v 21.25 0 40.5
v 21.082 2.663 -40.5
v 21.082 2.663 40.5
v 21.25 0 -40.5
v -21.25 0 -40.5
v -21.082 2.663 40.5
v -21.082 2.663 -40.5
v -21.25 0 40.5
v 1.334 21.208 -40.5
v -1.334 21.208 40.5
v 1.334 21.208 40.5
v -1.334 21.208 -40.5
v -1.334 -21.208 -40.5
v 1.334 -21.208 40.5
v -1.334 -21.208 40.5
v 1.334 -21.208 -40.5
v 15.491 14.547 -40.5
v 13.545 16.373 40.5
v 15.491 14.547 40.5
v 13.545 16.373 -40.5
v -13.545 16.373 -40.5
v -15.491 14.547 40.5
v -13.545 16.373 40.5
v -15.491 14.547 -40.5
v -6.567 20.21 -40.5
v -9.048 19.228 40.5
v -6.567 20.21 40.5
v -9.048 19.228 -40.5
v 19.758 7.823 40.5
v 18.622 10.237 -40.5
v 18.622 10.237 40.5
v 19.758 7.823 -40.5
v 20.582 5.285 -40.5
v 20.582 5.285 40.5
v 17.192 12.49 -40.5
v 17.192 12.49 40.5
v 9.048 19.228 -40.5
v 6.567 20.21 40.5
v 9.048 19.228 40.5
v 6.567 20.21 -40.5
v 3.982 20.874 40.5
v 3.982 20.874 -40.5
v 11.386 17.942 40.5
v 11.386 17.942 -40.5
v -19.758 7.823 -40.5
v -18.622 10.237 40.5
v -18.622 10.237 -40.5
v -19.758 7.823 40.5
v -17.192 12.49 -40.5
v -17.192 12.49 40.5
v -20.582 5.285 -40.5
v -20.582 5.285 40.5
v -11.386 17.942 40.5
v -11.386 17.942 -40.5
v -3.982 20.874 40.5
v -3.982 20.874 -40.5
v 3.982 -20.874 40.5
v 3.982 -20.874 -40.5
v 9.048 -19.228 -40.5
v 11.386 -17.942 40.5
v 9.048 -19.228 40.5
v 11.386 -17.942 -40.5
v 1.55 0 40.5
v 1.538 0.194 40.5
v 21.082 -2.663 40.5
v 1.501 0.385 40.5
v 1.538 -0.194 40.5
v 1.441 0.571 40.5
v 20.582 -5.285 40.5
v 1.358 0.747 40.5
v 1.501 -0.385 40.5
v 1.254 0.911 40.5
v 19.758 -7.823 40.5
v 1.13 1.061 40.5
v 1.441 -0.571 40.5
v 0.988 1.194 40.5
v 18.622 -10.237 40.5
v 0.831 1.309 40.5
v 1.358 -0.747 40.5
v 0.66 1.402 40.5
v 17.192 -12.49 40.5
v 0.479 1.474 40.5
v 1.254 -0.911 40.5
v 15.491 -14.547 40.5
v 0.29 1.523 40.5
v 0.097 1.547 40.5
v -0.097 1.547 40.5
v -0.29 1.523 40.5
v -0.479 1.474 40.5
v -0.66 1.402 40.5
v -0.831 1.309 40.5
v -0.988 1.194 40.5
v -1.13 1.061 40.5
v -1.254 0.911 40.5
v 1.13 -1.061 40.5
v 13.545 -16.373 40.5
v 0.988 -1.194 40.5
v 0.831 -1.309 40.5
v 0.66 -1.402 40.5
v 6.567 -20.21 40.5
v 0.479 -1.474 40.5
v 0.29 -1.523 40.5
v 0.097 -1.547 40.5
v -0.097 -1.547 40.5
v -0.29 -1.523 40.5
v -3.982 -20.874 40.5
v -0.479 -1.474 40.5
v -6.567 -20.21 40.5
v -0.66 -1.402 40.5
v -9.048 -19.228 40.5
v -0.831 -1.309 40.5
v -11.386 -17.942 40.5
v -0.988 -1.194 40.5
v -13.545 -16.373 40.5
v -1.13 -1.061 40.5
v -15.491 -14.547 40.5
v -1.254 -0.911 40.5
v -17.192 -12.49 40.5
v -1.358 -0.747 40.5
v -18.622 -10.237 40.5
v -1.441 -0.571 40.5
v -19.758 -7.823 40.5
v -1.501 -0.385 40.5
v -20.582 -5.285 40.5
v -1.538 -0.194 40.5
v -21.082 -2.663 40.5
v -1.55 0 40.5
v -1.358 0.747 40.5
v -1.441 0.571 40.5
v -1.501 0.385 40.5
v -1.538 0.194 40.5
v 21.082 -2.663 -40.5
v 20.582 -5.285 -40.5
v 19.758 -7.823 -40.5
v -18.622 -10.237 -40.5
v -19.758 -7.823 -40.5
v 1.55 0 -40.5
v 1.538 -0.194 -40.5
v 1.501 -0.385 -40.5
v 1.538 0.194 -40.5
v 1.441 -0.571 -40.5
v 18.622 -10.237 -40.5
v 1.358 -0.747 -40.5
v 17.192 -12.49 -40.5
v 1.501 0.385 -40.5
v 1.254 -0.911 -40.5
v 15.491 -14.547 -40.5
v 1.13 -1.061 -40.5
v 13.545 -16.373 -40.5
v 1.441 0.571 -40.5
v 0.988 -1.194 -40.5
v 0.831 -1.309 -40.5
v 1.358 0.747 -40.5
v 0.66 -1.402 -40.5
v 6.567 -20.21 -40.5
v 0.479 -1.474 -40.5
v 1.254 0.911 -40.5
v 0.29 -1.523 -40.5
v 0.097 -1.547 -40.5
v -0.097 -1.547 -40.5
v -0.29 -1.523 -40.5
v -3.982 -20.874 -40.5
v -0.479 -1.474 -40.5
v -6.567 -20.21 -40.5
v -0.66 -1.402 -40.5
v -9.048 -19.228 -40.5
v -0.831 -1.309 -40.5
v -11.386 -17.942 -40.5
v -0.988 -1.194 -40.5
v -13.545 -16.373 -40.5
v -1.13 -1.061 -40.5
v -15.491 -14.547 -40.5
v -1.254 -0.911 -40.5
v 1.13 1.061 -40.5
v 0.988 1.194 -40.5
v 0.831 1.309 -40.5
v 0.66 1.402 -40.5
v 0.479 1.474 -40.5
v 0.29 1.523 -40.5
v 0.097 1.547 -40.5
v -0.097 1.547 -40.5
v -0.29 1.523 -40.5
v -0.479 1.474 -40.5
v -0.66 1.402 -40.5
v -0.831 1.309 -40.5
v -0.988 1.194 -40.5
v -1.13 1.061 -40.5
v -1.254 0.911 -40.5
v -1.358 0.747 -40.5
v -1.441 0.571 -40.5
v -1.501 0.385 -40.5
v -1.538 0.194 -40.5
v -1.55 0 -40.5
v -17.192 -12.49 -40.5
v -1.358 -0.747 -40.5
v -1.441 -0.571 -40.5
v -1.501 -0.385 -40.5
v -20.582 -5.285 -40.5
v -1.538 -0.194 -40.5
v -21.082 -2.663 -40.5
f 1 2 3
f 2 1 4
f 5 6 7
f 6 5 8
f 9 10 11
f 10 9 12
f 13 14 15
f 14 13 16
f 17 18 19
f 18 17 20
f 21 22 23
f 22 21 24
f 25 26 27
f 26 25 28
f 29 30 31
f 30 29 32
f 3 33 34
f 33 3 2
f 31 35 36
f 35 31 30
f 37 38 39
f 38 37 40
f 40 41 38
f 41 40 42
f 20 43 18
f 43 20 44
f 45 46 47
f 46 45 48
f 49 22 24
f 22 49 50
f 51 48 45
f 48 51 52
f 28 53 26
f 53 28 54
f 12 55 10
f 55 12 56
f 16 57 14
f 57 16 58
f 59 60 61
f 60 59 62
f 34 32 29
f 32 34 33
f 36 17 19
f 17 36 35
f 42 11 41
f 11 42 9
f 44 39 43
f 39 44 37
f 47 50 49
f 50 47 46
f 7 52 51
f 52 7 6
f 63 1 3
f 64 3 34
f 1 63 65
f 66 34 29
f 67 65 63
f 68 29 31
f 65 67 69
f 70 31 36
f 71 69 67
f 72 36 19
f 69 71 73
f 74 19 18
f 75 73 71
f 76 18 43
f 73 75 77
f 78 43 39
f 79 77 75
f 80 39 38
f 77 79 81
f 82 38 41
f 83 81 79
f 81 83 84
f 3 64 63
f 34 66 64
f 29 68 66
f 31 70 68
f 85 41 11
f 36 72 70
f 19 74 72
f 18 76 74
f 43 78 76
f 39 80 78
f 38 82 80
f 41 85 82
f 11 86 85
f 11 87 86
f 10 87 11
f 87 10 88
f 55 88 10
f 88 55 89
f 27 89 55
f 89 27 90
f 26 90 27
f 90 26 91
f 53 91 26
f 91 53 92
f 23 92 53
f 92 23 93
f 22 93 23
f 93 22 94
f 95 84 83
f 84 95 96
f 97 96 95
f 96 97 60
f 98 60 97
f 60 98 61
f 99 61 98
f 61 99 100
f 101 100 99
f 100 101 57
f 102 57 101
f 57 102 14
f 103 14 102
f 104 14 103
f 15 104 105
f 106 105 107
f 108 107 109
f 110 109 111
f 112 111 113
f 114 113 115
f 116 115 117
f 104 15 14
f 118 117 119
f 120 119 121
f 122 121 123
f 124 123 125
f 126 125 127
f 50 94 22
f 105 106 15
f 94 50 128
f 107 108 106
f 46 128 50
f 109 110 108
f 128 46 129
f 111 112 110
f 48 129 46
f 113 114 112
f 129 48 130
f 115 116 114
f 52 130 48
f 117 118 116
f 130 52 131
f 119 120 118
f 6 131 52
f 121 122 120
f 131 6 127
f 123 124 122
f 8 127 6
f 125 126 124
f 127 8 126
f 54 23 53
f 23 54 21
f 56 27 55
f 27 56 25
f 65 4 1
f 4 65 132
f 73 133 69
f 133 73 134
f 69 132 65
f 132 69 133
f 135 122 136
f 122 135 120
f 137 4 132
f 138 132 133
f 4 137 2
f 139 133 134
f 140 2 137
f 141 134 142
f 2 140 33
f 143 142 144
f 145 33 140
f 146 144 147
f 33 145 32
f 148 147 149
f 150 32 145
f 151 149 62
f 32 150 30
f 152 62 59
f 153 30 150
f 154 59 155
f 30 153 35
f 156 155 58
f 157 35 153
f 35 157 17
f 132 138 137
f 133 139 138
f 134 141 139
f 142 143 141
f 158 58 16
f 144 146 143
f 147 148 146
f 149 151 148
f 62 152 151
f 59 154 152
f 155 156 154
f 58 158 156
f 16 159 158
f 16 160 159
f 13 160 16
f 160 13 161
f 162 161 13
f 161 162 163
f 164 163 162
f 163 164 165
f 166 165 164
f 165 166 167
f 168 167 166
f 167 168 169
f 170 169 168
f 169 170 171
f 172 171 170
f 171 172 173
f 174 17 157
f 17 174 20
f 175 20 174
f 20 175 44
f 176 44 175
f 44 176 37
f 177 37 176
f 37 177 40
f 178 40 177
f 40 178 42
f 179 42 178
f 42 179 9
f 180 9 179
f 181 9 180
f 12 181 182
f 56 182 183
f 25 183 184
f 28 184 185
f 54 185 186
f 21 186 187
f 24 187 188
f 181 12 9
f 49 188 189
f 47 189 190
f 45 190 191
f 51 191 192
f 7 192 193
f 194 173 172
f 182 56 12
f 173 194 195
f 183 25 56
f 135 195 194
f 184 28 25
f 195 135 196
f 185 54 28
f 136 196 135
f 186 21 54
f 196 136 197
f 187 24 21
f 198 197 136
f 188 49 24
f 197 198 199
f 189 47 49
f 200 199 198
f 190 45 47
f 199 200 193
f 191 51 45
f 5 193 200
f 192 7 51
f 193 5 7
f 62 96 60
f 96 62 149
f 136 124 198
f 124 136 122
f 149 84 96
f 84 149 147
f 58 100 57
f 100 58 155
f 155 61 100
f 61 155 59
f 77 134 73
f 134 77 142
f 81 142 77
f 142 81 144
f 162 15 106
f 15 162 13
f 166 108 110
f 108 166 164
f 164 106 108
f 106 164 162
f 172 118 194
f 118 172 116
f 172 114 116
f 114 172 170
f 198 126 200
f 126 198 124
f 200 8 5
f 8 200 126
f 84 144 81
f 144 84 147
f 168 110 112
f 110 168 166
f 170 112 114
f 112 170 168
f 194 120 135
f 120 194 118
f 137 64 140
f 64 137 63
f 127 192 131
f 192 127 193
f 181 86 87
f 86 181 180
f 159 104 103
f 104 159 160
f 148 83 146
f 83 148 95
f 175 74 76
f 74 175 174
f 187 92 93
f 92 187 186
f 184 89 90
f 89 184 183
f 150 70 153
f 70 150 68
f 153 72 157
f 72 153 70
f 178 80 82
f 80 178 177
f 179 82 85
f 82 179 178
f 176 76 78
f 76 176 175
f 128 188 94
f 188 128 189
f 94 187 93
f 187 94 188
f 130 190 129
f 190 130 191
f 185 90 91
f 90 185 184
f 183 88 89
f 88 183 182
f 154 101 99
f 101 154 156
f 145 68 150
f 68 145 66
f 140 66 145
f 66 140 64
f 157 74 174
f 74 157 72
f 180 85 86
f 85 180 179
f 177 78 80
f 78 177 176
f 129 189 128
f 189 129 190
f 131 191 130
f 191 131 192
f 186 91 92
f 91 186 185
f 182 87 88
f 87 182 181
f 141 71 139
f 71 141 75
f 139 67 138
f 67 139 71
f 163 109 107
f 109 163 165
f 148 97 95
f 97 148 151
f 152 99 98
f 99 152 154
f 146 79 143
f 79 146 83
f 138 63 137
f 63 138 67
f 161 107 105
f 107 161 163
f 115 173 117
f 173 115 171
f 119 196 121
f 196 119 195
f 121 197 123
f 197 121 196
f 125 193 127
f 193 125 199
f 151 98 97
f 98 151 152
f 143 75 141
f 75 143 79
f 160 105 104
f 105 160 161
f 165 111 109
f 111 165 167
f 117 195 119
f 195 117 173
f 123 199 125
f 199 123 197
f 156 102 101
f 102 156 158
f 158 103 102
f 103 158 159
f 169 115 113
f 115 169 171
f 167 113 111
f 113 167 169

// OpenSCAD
$fn = 50;


difference() {
	union() {
		translate(v = [0, 0, -40.5000000000]) {
			cylinder(h = 81, r = 21.2500000000);
		}
	}
	union() {
		translate(v = [0, 0, -100.0000000000]) {
			cylinder(h = 200, r = 1.5500000000);
		}
	}
}
